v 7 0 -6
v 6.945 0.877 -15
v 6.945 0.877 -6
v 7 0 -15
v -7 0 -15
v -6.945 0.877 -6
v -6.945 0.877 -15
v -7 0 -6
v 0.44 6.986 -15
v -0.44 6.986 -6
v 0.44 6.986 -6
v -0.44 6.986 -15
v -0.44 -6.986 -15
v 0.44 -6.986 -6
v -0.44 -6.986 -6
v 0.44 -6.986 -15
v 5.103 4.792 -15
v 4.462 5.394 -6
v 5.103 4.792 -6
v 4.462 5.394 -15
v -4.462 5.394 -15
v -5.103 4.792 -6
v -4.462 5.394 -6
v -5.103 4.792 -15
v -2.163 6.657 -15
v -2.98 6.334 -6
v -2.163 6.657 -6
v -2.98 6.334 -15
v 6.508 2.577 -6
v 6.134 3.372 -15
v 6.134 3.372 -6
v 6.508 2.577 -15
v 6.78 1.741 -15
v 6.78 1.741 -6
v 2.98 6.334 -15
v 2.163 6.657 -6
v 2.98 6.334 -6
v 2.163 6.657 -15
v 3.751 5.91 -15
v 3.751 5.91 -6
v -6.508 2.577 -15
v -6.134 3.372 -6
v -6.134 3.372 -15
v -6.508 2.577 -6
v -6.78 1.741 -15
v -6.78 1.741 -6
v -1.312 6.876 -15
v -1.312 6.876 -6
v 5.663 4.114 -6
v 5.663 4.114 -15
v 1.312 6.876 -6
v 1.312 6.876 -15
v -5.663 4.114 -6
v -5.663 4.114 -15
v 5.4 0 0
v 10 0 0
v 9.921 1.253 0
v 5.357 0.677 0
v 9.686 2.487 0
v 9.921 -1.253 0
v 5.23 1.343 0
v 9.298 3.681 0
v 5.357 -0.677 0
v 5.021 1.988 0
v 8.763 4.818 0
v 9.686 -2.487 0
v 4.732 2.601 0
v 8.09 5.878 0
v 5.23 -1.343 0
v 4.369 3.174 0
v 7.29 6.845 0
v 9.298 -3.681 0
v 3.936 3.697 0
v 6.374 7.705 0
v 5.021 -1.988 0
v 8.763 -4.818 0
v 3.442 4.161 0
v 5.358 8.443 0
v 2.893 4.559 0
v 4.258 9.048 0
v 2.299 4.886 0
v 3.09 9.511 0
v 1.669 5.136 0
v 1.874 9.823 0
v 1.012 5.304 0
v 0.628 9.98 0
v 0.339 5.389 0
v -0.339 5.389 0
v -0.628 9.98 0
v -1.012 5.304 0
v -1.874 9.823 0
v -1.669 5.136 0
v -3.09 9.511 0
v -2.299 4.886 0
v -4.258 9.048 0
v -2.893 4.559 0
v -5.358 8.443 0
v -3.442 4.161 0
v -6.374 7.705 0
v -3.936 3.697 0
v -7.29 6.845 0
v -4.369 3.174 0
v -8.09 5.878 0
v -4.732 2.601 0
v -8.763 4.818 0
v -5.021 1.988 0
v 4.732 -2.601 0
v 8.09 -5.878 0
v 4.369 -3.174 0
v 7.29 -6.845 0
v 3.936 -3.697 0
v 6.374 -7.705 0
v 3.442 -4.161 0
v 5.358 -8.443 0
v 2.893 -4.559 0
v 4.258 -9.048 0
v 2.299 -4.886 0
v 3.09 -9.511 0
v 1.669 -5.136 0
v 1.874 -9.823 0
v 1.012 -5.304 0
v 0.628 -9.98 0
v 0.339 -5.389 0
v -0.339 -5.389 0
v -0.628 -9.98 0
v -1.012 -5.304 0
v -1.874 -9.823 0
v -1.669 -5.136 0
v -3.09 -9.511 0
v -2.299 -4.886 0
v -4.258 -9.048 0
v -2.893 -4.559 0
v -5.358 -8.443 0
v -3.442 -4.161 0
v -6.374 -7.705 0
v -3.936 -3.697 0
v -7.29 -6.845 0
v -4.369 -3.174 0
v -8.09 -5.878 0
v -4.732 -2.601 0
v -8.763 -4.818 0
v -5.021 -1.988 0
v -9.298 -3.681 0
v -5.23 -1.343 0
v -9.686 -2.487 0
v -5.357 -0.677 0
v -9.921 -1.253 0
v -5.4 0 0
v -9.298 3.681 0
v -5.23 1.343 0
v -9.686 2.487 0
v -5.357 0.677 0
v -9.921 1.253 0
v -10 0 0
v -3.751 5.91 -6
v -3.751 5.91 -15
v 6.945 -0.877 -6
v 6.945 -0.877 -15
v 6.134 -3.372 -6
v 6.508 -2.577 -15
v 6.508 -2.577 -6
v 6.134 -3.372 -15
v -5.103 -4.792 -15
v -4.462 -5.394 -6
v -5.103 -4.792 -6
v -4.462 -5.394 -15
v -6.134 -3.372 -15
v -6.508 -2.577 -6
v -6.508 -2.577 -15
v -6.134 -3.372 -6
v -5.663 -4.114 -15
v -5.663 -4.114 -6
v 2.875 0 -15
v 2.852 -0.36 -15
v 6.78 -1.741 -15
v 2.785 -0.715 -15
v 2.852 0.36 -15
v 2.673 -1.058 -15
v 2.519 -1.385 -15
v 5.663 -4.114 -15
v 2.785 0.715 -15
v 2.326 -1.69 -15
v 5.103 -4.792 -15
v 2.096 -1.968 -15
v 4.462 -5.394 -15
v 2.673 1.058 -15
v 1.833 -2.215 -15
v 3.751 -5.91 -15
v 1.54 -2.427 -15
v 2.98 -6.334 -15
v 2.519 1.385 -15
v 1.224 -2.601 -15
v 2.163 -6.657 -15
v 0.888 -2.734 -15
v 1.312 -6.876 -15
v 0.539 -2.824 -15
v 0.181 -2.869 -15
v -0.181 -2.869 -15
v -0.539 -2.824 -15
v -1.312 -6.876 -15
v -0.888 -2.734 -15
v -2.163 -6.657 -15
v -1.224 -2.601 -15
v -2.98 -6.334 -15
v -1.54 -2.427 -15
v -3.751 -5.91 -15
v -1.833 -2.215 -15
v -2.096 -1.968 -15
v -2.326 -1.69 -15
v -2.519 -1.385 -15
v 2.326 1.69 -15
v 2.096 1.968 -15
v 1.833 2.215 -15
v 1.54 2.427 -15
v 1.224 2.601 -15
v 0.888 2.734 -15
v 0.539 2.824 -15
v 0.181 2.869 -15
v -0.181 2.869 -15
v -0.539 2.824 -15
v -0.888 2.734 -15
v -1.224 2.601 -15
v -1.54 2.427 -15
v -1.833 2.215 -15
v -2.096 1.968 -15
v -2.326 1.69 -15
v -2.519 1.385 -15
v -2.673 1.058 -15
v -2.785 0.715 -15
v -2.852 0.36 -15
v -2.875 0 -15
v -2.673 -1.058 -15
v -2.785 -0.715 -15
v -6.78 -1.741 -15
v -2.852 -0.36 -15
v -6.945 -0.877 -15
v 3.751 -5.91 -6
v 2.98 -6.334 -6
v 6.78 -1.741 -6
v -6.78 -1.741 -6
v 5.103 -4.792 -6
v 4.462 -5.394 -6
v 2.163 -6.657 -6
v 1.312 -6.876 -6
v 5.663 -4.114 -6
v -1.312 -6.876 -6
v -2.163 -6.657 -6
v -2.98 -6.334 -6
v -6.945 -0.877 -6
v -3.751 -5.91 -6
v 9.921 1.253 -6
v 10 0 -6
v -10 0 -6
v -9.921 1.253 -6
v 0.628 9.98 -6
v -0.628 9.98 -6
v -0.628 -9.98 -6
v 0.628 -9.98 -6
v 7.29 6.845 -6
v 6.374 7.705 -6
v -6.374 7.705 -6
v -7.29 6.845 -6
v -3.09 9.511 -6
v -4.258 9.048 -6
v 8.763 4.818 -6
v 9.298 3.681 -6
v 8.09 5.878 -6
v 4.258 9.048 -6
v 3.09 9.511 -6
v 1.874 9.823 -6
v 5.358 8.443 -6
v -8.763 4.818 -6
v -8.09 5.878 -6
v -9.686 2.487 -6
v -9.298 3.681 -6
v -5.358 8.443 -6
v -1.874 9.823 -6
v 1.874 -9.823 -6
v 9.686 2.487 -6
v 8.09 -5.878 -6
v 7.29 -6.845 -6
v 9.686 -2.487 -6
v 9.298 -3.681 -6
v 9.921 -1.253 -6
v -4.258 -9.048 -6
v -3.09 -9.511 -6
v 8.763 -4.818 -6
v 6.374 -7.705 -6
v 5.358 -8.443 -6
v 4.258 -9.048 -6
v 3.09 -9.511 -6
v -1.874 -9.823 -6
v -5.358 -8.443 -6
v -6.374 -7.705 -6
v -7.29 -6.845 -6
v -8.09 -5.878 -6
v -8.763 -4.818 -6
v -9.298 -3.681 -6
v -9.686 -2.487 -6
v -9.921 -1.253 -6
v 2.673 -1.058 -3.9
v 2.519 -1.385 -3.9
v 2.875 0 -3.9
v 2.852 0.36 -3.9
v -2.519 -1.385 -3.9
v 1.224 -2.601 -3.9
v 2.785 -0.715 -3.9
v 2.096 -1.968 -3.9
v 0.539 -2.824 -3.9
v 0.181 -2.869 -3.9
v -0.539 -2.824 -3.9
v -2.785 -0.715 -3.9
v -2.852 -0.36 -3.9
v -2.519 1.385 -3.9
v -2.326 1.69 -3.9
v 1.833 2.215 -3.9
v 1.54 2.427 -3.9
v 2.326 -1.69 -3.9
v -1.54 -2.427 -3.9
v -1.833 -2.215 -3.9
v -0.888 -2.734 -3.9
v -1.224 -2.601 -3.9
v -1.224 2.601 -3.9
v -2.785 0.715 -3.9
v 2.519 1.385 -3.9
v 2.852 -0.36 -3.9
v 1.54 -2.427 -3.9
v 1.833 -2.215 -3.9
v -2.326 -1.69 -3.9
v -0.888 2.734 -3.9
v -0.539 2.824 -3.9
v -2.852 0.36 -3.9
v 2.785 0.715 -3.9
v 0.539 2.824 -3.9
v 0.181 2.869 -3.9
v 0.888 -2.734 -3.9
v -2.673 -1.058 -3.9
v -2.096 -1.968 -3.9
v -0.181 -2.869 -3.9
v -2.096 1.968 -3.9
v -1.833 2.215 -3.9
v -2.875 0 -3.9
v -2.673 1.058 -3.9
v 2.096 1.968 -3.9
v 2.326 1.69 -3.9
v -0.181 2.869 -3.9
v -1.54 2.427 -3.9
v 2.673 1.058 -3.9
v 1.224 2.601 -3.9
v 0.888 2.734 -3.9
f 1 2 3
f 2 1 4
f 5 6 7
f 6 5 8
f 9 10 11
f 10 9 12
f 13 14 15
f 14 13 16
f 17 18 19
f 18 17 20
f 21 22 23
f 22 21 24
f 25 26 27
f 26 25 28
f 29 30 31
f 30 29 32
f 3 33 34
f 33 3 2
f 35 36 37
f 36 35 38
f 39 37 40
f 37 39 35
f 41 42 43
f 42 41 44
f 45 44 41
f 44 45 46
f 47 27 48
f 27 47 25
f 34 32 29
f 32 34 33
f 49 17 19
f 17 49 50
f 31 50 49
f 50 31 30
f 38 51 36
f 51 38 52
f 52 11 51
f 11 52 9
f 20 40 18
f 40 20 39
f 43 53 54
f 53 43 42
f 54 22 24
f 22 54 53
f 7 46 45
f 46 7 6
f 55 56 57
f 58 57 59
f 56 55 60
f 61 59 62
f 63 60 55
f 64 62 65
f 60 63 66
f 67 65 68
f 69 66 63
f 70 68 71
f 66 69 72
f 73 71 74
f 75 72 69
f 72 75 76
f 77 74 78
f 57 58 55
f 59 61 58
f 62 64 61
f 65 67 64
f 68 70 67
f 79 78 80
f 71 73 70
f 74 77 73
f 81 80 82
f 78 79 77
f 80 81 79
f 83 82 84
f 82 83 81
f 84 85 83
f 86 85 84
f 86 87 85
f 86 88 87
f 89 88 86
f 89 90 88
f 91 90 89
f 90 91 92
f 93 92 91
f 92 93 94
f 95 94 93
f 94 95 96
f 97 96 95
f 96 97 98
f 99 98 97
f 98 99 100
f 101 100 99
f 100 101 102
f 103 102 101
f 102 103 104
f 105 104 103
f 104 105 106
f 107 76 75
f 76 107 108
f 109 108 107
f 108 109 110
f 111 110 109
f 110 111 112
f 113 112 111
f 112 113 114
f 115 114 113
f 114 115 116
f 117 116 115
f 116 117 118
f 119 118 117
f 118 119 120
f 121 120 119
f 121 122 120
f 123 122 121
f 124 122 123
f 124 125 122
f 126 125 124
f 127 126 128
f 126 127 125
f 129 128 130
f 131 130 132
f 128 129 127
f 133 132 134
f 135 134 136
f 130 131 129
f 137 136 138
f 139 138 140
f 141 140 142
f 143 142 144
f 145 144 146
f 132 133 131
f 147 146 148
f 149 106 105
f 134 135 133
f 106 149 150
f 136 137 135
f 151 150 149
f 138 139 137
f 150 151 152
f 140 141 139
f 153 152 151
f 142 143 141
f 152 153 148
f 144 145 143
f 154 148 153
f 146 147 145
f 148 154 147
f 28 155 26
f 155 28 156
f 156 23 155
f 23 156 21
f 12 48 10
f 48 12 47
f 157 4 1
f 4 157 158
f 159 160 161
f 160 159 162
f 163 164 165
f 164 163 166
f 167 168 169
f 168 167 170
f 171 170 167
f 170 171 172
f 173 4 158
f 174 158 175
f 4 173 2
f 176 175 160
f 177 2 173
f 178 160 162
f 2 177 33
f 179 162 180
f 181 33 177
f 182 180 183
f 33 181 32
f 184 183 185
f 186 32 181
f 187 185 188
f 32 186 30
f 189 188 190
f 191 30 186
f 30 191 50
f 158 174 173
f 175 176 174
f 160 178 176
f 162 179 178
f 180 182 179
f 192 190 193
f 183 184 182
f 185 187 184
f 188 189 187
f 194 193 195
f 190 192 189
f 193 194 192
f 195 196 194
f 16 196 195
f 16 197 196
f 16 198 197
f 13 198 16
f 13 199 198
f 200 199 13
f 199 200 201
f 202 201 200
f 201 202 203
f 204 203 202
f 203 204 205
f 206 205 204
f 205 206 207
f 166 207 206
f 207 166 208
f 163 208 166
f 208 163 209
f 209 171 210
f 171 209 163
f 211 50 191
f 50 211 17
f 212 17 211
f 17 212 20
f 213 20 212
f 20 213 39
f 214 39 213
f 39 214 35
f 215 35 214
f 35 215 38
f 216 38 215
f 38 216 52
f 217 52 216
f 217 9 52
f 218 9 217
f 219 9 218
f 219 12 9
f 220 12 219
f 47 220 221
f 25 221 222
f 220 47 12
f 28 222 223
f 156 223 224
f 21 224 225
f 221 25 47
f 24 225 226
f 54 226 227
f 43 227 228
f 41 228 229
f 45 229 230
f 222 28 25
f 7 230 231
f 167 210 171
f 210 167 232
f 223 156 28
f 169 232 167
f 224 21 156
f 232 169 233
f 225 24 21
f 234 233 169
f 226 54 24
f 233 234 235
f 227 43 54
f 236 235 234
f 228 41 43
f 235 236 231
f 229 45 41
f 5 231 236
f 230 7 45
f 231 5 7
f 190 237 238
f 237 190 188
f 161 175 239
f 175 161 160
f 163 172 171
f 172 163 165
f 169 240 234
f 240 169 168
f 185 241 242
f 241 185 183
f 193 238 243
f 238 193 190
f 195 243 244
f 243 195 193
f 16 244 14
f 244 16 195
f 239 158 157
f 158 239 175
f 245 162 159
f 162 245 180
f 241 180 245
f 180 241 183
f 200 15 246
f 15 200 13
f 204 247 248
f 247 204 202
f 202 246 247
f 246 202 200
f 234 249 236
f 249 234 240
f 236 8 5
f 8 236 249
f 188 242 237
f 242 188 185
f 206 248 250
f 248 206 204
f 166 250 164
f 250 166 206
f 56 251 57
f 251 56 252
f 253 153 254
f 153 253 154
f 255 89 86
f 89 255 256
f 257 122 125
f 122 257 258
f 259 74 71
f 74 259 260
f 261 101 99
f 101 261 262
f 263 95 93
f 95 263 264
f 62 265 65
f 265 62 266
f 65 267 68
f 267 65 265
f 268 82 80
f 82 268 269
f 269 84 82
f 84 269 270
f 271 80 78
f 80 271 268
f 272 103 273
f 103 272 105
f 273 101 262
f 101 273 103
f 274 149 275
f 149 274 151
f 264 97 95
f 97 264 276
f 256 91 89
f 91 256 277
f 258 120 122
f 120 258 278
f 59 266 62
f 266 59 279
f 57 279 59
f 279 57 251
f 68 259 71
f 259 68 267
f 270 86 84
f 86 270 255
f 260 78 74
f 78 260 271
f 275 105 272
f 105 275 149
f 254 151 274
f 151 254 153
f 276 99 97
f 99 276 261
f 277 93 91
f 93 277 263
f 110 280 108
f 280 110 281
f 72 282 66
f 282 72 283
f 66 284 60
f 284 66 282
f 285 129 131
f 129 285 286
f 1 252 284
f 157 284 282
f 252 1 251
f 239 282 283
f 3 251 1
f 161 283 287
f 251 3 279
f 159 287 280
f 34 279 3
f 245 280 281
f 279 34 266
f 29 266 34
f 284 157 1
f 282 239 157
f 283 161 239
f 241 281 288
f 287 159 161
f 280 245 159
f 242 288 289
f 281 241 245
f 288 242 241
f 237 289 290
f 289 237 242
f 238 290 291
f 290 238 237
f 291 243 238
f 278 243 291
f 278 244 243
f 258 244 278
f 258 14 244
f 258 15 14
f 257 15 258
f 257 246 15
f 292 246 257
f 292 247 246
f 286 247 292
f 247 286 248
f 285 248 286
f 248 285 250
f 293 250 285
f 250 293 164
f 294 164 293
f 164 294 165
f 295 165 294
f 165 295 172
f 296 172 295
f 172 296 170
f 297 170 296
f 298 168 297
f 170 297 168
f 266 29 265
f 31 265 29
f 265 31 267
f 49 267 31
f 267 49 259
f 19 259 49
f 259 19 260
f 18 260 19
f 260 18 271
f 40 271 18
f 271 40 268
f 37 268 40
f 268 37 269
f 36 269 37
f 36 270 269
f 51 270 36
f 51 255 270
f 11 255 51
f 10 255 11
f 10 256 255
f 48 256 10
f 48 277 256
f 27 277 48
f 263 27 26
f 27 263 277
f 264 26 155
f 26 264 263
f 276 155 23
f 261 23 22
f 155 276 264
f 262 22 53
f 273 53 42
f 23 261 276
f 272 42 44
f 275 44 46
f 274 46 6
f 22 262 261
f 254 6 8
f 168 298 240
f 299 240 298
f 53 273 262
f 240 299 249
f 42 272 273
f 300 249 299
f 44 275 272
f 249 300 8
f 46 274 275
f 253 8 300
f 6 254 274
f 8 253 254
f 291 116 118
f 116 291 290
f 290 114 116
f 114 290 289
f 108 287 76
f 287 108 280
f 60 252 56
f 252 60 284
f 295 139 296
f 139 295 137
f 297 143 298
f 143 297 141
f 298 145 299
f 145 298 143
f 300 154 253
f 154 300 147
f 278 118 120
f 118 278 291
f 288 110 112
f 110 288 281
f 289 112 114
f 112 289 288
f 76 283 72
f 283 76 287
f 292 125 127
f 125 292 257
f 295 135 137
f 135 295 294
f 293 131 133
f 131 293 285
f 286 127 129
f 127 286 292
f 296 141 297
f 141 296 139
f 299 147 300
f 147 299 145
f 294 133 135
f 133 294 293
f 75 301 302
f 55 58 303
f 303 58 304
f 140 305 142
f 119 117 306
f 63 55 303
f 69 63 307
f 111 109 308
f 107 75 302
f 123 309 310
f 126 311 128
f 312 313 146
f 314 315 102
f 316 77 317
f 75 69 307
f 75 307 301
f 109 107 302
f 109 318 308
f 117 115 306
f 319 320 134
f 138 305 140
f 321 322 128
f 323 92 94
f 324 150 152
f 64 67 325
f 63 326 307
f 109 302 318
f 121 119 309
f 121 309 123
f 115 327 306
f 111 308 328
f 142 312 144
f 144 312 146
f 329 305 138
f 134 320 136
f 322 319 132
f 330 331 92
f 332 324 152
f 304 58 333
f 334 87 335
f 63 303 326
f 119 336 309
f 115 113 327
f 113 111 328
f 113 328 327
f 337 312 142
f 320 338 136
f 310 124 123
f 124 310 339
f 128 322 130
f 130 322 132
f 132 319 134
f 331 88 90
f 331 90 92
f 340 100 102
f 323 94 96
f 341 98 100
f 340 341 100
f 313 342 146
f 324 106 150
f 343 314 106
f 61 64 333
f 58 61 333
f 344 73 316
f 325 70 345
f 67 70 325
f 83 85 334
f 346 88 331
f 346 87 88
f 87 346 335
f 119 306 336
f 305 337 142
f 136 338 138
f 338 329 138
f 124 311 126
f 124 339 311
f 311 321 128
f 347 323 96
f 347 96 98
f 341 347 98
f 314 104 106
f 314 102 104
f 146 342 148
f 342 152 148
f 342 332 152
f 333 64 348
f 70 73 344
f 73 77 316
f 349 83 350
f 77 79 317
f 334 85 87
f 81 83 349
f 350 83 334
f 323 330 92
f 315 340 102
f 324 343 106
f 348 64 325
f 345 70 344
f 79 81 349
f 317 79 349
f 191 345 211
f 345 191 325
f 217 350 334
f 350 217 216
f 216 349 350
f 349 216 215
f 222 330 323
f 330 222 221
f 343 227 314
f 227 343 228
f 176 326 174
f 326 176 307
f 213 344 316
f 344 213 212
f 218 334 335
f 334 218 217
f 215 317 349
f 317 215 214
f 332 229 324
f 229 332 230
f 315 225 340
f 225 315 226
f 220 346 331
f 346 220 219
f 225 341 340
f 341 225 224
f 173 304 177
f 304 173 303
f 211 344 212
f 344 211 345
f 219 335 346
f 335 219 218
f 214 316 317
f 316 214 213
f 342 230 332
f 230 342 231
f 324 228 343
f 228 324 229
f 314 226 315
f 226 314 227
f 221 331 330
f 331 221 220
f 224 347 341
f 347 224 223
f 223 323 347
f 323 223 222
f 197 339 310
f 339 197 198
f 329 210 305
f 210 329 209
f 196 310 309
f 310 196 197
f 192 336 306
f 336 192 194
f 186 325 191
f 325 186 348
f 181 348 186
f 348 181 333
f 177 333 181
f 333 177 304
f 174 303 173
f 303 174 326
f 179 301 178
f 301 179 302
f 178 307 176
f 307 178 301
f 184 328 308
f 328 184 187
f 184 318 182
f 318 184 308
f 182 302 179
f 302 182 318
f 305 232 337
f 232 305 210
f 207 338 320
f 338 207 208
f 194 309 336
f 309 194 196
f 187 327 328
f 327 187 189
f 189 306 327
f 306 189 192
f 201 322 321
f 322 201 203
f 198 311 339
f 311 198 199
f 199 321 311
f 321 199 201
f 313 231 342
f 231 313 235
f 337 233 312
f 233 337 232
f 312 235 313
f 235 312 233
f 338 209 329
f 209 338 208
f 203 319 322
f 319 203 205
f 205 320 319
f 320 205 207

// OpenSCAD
$fn = 50;


difference() {
	union() {
		translate(v = [0, 0, -15.0000000000]) {
			cylinder(h = 15, r = 7.0000000000);
		}
		translate(v = [0, 0, -6.0000000000]) {
			cylinder(h = 6, r = 10.0000000000);
		}
	}
	union() {
		translate(v = [0, 0, 0]) {
			rotate(a = [0, 0, 0]) {
				difference() {
					union() {
						#translate(v = [0, 0, -15.0000000000]) {
							cylinder(h = 15, r = 2.6000000000);
						}
						#translate(v = [0, 0, -3.9000000000]) {
							cylinder(h = 3.9000000000, r = 7.0000000000, r1 = 2.8750000000, r2 = 5.4000000000);
						}
						#translate(v = [0, 0, -15.0000000000]) {
							cylinder(h = 15, r = 2.8750000000);
						}
						#translate(v = [0, 0, -15.0000000000]) {
							cylinder(h = 15, r = 2.6000000000);
						}
					}
					union();
				}
			}
		}
	}
}
